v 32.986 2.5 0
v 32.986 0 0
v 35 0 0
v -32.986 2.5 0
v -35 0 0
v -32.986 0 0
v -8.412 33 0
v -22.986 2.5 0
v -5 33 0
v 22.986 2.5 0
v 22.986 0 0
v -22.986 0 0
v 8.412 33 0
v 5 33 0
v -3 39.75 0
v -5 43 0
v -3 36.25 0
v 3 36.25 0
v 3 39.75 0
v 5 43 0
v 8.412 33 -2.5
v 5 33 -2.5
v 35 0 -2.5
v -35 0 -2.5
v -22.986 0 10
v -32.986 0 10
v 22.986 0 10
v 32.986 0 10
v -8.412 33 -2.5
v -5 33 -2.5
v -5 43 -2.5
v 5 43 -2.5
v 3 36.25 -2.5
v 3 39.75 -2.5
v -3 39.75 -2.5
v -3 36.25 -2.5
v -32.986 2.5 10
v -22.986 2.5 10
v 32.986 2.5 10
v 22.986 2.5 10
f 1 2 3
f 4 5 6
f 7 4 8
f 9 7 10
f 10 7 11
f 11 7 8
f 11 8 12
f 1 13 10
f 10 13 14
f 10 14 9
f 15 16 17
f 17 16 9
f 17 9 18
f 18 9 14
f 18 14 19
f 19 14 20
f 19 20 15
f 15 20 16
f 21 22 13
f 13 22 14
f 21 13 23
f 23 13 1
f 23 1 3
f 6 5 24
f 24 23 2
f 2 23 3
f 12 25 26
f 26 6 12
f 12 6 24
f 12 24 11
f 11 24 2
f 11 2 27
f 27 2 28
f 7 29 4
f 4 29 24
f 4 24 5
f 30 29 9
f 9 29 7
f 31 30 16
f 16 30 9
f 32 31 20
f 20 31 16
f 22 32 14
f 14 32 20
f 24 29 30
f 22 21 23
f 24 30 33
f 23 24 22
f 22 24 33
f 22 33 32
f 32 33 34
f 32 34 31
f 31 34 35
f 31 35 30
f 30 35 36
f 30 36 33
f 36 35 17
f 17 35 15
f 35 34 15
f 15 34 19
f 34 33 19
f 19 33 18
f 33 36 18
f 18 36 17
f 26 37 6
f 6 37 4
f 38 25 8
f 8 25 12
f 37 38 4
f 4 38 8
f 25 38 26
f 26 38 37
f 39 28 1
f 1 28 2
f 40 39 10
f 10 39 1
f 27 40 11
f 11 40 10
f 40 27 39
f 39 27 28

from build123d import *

# Parameters (mm, degrees)
BASE_FLANGE1_DEPTH  = 2.5
SKETCH6_W           = 6
SKETCH6_H           = 3.5
CUT_EXTRUDE1_DEPTH  = 10
SKETCH7_W           = 10
SKETCH7_H           = 2.5
BOSS_EXTRUDE1_DEPTH = 10


# Sheet-metal steps are written as plain solids
with BuildPart() as part:
    # Sketch1 → Base-Flange1 (new body)
    with BuildSketch(Plane.XY):
        Polygon((-35, 0), (35, 0), (8.412017167, 33), (5, 33), (5, 43), (-5, 43), (-5, 33), (-8.412017167, 33), align=None)
    extrude(amount=-BASE_FLANGE1_DEPTH)

    # Sketch6 → Cut-Extrude1 (cut)
    with BuildSketch(Plane.XY):
        with Locations((0, 38)):
            Rectangle(SKETCH6_W, SKETCH6_H)
    extrude(amount=-CUT_EXTRUDE1_DEPTH, mode=Mode.SUBTRACT)

    # Sketch7 → Boss-Extrude1 (add)
    with BuildSketch(Plane.XY):
        with Locations((-27.985758876, 1.25)):
            Rectangle(SKETCH7_W, SKETCH7_H)
    boss_extrude1 = extrude(amount=BOSS_EXTRUDE1_DEPTH)

    # Mirror1: Boss-Extrude1 across plane
    add(boss_extrude1.mirror(Plane(origin=(0, 0, 0), x_dir=(0, 0, 1), z_dir=(1, 0, 0))))


solid = part.part
